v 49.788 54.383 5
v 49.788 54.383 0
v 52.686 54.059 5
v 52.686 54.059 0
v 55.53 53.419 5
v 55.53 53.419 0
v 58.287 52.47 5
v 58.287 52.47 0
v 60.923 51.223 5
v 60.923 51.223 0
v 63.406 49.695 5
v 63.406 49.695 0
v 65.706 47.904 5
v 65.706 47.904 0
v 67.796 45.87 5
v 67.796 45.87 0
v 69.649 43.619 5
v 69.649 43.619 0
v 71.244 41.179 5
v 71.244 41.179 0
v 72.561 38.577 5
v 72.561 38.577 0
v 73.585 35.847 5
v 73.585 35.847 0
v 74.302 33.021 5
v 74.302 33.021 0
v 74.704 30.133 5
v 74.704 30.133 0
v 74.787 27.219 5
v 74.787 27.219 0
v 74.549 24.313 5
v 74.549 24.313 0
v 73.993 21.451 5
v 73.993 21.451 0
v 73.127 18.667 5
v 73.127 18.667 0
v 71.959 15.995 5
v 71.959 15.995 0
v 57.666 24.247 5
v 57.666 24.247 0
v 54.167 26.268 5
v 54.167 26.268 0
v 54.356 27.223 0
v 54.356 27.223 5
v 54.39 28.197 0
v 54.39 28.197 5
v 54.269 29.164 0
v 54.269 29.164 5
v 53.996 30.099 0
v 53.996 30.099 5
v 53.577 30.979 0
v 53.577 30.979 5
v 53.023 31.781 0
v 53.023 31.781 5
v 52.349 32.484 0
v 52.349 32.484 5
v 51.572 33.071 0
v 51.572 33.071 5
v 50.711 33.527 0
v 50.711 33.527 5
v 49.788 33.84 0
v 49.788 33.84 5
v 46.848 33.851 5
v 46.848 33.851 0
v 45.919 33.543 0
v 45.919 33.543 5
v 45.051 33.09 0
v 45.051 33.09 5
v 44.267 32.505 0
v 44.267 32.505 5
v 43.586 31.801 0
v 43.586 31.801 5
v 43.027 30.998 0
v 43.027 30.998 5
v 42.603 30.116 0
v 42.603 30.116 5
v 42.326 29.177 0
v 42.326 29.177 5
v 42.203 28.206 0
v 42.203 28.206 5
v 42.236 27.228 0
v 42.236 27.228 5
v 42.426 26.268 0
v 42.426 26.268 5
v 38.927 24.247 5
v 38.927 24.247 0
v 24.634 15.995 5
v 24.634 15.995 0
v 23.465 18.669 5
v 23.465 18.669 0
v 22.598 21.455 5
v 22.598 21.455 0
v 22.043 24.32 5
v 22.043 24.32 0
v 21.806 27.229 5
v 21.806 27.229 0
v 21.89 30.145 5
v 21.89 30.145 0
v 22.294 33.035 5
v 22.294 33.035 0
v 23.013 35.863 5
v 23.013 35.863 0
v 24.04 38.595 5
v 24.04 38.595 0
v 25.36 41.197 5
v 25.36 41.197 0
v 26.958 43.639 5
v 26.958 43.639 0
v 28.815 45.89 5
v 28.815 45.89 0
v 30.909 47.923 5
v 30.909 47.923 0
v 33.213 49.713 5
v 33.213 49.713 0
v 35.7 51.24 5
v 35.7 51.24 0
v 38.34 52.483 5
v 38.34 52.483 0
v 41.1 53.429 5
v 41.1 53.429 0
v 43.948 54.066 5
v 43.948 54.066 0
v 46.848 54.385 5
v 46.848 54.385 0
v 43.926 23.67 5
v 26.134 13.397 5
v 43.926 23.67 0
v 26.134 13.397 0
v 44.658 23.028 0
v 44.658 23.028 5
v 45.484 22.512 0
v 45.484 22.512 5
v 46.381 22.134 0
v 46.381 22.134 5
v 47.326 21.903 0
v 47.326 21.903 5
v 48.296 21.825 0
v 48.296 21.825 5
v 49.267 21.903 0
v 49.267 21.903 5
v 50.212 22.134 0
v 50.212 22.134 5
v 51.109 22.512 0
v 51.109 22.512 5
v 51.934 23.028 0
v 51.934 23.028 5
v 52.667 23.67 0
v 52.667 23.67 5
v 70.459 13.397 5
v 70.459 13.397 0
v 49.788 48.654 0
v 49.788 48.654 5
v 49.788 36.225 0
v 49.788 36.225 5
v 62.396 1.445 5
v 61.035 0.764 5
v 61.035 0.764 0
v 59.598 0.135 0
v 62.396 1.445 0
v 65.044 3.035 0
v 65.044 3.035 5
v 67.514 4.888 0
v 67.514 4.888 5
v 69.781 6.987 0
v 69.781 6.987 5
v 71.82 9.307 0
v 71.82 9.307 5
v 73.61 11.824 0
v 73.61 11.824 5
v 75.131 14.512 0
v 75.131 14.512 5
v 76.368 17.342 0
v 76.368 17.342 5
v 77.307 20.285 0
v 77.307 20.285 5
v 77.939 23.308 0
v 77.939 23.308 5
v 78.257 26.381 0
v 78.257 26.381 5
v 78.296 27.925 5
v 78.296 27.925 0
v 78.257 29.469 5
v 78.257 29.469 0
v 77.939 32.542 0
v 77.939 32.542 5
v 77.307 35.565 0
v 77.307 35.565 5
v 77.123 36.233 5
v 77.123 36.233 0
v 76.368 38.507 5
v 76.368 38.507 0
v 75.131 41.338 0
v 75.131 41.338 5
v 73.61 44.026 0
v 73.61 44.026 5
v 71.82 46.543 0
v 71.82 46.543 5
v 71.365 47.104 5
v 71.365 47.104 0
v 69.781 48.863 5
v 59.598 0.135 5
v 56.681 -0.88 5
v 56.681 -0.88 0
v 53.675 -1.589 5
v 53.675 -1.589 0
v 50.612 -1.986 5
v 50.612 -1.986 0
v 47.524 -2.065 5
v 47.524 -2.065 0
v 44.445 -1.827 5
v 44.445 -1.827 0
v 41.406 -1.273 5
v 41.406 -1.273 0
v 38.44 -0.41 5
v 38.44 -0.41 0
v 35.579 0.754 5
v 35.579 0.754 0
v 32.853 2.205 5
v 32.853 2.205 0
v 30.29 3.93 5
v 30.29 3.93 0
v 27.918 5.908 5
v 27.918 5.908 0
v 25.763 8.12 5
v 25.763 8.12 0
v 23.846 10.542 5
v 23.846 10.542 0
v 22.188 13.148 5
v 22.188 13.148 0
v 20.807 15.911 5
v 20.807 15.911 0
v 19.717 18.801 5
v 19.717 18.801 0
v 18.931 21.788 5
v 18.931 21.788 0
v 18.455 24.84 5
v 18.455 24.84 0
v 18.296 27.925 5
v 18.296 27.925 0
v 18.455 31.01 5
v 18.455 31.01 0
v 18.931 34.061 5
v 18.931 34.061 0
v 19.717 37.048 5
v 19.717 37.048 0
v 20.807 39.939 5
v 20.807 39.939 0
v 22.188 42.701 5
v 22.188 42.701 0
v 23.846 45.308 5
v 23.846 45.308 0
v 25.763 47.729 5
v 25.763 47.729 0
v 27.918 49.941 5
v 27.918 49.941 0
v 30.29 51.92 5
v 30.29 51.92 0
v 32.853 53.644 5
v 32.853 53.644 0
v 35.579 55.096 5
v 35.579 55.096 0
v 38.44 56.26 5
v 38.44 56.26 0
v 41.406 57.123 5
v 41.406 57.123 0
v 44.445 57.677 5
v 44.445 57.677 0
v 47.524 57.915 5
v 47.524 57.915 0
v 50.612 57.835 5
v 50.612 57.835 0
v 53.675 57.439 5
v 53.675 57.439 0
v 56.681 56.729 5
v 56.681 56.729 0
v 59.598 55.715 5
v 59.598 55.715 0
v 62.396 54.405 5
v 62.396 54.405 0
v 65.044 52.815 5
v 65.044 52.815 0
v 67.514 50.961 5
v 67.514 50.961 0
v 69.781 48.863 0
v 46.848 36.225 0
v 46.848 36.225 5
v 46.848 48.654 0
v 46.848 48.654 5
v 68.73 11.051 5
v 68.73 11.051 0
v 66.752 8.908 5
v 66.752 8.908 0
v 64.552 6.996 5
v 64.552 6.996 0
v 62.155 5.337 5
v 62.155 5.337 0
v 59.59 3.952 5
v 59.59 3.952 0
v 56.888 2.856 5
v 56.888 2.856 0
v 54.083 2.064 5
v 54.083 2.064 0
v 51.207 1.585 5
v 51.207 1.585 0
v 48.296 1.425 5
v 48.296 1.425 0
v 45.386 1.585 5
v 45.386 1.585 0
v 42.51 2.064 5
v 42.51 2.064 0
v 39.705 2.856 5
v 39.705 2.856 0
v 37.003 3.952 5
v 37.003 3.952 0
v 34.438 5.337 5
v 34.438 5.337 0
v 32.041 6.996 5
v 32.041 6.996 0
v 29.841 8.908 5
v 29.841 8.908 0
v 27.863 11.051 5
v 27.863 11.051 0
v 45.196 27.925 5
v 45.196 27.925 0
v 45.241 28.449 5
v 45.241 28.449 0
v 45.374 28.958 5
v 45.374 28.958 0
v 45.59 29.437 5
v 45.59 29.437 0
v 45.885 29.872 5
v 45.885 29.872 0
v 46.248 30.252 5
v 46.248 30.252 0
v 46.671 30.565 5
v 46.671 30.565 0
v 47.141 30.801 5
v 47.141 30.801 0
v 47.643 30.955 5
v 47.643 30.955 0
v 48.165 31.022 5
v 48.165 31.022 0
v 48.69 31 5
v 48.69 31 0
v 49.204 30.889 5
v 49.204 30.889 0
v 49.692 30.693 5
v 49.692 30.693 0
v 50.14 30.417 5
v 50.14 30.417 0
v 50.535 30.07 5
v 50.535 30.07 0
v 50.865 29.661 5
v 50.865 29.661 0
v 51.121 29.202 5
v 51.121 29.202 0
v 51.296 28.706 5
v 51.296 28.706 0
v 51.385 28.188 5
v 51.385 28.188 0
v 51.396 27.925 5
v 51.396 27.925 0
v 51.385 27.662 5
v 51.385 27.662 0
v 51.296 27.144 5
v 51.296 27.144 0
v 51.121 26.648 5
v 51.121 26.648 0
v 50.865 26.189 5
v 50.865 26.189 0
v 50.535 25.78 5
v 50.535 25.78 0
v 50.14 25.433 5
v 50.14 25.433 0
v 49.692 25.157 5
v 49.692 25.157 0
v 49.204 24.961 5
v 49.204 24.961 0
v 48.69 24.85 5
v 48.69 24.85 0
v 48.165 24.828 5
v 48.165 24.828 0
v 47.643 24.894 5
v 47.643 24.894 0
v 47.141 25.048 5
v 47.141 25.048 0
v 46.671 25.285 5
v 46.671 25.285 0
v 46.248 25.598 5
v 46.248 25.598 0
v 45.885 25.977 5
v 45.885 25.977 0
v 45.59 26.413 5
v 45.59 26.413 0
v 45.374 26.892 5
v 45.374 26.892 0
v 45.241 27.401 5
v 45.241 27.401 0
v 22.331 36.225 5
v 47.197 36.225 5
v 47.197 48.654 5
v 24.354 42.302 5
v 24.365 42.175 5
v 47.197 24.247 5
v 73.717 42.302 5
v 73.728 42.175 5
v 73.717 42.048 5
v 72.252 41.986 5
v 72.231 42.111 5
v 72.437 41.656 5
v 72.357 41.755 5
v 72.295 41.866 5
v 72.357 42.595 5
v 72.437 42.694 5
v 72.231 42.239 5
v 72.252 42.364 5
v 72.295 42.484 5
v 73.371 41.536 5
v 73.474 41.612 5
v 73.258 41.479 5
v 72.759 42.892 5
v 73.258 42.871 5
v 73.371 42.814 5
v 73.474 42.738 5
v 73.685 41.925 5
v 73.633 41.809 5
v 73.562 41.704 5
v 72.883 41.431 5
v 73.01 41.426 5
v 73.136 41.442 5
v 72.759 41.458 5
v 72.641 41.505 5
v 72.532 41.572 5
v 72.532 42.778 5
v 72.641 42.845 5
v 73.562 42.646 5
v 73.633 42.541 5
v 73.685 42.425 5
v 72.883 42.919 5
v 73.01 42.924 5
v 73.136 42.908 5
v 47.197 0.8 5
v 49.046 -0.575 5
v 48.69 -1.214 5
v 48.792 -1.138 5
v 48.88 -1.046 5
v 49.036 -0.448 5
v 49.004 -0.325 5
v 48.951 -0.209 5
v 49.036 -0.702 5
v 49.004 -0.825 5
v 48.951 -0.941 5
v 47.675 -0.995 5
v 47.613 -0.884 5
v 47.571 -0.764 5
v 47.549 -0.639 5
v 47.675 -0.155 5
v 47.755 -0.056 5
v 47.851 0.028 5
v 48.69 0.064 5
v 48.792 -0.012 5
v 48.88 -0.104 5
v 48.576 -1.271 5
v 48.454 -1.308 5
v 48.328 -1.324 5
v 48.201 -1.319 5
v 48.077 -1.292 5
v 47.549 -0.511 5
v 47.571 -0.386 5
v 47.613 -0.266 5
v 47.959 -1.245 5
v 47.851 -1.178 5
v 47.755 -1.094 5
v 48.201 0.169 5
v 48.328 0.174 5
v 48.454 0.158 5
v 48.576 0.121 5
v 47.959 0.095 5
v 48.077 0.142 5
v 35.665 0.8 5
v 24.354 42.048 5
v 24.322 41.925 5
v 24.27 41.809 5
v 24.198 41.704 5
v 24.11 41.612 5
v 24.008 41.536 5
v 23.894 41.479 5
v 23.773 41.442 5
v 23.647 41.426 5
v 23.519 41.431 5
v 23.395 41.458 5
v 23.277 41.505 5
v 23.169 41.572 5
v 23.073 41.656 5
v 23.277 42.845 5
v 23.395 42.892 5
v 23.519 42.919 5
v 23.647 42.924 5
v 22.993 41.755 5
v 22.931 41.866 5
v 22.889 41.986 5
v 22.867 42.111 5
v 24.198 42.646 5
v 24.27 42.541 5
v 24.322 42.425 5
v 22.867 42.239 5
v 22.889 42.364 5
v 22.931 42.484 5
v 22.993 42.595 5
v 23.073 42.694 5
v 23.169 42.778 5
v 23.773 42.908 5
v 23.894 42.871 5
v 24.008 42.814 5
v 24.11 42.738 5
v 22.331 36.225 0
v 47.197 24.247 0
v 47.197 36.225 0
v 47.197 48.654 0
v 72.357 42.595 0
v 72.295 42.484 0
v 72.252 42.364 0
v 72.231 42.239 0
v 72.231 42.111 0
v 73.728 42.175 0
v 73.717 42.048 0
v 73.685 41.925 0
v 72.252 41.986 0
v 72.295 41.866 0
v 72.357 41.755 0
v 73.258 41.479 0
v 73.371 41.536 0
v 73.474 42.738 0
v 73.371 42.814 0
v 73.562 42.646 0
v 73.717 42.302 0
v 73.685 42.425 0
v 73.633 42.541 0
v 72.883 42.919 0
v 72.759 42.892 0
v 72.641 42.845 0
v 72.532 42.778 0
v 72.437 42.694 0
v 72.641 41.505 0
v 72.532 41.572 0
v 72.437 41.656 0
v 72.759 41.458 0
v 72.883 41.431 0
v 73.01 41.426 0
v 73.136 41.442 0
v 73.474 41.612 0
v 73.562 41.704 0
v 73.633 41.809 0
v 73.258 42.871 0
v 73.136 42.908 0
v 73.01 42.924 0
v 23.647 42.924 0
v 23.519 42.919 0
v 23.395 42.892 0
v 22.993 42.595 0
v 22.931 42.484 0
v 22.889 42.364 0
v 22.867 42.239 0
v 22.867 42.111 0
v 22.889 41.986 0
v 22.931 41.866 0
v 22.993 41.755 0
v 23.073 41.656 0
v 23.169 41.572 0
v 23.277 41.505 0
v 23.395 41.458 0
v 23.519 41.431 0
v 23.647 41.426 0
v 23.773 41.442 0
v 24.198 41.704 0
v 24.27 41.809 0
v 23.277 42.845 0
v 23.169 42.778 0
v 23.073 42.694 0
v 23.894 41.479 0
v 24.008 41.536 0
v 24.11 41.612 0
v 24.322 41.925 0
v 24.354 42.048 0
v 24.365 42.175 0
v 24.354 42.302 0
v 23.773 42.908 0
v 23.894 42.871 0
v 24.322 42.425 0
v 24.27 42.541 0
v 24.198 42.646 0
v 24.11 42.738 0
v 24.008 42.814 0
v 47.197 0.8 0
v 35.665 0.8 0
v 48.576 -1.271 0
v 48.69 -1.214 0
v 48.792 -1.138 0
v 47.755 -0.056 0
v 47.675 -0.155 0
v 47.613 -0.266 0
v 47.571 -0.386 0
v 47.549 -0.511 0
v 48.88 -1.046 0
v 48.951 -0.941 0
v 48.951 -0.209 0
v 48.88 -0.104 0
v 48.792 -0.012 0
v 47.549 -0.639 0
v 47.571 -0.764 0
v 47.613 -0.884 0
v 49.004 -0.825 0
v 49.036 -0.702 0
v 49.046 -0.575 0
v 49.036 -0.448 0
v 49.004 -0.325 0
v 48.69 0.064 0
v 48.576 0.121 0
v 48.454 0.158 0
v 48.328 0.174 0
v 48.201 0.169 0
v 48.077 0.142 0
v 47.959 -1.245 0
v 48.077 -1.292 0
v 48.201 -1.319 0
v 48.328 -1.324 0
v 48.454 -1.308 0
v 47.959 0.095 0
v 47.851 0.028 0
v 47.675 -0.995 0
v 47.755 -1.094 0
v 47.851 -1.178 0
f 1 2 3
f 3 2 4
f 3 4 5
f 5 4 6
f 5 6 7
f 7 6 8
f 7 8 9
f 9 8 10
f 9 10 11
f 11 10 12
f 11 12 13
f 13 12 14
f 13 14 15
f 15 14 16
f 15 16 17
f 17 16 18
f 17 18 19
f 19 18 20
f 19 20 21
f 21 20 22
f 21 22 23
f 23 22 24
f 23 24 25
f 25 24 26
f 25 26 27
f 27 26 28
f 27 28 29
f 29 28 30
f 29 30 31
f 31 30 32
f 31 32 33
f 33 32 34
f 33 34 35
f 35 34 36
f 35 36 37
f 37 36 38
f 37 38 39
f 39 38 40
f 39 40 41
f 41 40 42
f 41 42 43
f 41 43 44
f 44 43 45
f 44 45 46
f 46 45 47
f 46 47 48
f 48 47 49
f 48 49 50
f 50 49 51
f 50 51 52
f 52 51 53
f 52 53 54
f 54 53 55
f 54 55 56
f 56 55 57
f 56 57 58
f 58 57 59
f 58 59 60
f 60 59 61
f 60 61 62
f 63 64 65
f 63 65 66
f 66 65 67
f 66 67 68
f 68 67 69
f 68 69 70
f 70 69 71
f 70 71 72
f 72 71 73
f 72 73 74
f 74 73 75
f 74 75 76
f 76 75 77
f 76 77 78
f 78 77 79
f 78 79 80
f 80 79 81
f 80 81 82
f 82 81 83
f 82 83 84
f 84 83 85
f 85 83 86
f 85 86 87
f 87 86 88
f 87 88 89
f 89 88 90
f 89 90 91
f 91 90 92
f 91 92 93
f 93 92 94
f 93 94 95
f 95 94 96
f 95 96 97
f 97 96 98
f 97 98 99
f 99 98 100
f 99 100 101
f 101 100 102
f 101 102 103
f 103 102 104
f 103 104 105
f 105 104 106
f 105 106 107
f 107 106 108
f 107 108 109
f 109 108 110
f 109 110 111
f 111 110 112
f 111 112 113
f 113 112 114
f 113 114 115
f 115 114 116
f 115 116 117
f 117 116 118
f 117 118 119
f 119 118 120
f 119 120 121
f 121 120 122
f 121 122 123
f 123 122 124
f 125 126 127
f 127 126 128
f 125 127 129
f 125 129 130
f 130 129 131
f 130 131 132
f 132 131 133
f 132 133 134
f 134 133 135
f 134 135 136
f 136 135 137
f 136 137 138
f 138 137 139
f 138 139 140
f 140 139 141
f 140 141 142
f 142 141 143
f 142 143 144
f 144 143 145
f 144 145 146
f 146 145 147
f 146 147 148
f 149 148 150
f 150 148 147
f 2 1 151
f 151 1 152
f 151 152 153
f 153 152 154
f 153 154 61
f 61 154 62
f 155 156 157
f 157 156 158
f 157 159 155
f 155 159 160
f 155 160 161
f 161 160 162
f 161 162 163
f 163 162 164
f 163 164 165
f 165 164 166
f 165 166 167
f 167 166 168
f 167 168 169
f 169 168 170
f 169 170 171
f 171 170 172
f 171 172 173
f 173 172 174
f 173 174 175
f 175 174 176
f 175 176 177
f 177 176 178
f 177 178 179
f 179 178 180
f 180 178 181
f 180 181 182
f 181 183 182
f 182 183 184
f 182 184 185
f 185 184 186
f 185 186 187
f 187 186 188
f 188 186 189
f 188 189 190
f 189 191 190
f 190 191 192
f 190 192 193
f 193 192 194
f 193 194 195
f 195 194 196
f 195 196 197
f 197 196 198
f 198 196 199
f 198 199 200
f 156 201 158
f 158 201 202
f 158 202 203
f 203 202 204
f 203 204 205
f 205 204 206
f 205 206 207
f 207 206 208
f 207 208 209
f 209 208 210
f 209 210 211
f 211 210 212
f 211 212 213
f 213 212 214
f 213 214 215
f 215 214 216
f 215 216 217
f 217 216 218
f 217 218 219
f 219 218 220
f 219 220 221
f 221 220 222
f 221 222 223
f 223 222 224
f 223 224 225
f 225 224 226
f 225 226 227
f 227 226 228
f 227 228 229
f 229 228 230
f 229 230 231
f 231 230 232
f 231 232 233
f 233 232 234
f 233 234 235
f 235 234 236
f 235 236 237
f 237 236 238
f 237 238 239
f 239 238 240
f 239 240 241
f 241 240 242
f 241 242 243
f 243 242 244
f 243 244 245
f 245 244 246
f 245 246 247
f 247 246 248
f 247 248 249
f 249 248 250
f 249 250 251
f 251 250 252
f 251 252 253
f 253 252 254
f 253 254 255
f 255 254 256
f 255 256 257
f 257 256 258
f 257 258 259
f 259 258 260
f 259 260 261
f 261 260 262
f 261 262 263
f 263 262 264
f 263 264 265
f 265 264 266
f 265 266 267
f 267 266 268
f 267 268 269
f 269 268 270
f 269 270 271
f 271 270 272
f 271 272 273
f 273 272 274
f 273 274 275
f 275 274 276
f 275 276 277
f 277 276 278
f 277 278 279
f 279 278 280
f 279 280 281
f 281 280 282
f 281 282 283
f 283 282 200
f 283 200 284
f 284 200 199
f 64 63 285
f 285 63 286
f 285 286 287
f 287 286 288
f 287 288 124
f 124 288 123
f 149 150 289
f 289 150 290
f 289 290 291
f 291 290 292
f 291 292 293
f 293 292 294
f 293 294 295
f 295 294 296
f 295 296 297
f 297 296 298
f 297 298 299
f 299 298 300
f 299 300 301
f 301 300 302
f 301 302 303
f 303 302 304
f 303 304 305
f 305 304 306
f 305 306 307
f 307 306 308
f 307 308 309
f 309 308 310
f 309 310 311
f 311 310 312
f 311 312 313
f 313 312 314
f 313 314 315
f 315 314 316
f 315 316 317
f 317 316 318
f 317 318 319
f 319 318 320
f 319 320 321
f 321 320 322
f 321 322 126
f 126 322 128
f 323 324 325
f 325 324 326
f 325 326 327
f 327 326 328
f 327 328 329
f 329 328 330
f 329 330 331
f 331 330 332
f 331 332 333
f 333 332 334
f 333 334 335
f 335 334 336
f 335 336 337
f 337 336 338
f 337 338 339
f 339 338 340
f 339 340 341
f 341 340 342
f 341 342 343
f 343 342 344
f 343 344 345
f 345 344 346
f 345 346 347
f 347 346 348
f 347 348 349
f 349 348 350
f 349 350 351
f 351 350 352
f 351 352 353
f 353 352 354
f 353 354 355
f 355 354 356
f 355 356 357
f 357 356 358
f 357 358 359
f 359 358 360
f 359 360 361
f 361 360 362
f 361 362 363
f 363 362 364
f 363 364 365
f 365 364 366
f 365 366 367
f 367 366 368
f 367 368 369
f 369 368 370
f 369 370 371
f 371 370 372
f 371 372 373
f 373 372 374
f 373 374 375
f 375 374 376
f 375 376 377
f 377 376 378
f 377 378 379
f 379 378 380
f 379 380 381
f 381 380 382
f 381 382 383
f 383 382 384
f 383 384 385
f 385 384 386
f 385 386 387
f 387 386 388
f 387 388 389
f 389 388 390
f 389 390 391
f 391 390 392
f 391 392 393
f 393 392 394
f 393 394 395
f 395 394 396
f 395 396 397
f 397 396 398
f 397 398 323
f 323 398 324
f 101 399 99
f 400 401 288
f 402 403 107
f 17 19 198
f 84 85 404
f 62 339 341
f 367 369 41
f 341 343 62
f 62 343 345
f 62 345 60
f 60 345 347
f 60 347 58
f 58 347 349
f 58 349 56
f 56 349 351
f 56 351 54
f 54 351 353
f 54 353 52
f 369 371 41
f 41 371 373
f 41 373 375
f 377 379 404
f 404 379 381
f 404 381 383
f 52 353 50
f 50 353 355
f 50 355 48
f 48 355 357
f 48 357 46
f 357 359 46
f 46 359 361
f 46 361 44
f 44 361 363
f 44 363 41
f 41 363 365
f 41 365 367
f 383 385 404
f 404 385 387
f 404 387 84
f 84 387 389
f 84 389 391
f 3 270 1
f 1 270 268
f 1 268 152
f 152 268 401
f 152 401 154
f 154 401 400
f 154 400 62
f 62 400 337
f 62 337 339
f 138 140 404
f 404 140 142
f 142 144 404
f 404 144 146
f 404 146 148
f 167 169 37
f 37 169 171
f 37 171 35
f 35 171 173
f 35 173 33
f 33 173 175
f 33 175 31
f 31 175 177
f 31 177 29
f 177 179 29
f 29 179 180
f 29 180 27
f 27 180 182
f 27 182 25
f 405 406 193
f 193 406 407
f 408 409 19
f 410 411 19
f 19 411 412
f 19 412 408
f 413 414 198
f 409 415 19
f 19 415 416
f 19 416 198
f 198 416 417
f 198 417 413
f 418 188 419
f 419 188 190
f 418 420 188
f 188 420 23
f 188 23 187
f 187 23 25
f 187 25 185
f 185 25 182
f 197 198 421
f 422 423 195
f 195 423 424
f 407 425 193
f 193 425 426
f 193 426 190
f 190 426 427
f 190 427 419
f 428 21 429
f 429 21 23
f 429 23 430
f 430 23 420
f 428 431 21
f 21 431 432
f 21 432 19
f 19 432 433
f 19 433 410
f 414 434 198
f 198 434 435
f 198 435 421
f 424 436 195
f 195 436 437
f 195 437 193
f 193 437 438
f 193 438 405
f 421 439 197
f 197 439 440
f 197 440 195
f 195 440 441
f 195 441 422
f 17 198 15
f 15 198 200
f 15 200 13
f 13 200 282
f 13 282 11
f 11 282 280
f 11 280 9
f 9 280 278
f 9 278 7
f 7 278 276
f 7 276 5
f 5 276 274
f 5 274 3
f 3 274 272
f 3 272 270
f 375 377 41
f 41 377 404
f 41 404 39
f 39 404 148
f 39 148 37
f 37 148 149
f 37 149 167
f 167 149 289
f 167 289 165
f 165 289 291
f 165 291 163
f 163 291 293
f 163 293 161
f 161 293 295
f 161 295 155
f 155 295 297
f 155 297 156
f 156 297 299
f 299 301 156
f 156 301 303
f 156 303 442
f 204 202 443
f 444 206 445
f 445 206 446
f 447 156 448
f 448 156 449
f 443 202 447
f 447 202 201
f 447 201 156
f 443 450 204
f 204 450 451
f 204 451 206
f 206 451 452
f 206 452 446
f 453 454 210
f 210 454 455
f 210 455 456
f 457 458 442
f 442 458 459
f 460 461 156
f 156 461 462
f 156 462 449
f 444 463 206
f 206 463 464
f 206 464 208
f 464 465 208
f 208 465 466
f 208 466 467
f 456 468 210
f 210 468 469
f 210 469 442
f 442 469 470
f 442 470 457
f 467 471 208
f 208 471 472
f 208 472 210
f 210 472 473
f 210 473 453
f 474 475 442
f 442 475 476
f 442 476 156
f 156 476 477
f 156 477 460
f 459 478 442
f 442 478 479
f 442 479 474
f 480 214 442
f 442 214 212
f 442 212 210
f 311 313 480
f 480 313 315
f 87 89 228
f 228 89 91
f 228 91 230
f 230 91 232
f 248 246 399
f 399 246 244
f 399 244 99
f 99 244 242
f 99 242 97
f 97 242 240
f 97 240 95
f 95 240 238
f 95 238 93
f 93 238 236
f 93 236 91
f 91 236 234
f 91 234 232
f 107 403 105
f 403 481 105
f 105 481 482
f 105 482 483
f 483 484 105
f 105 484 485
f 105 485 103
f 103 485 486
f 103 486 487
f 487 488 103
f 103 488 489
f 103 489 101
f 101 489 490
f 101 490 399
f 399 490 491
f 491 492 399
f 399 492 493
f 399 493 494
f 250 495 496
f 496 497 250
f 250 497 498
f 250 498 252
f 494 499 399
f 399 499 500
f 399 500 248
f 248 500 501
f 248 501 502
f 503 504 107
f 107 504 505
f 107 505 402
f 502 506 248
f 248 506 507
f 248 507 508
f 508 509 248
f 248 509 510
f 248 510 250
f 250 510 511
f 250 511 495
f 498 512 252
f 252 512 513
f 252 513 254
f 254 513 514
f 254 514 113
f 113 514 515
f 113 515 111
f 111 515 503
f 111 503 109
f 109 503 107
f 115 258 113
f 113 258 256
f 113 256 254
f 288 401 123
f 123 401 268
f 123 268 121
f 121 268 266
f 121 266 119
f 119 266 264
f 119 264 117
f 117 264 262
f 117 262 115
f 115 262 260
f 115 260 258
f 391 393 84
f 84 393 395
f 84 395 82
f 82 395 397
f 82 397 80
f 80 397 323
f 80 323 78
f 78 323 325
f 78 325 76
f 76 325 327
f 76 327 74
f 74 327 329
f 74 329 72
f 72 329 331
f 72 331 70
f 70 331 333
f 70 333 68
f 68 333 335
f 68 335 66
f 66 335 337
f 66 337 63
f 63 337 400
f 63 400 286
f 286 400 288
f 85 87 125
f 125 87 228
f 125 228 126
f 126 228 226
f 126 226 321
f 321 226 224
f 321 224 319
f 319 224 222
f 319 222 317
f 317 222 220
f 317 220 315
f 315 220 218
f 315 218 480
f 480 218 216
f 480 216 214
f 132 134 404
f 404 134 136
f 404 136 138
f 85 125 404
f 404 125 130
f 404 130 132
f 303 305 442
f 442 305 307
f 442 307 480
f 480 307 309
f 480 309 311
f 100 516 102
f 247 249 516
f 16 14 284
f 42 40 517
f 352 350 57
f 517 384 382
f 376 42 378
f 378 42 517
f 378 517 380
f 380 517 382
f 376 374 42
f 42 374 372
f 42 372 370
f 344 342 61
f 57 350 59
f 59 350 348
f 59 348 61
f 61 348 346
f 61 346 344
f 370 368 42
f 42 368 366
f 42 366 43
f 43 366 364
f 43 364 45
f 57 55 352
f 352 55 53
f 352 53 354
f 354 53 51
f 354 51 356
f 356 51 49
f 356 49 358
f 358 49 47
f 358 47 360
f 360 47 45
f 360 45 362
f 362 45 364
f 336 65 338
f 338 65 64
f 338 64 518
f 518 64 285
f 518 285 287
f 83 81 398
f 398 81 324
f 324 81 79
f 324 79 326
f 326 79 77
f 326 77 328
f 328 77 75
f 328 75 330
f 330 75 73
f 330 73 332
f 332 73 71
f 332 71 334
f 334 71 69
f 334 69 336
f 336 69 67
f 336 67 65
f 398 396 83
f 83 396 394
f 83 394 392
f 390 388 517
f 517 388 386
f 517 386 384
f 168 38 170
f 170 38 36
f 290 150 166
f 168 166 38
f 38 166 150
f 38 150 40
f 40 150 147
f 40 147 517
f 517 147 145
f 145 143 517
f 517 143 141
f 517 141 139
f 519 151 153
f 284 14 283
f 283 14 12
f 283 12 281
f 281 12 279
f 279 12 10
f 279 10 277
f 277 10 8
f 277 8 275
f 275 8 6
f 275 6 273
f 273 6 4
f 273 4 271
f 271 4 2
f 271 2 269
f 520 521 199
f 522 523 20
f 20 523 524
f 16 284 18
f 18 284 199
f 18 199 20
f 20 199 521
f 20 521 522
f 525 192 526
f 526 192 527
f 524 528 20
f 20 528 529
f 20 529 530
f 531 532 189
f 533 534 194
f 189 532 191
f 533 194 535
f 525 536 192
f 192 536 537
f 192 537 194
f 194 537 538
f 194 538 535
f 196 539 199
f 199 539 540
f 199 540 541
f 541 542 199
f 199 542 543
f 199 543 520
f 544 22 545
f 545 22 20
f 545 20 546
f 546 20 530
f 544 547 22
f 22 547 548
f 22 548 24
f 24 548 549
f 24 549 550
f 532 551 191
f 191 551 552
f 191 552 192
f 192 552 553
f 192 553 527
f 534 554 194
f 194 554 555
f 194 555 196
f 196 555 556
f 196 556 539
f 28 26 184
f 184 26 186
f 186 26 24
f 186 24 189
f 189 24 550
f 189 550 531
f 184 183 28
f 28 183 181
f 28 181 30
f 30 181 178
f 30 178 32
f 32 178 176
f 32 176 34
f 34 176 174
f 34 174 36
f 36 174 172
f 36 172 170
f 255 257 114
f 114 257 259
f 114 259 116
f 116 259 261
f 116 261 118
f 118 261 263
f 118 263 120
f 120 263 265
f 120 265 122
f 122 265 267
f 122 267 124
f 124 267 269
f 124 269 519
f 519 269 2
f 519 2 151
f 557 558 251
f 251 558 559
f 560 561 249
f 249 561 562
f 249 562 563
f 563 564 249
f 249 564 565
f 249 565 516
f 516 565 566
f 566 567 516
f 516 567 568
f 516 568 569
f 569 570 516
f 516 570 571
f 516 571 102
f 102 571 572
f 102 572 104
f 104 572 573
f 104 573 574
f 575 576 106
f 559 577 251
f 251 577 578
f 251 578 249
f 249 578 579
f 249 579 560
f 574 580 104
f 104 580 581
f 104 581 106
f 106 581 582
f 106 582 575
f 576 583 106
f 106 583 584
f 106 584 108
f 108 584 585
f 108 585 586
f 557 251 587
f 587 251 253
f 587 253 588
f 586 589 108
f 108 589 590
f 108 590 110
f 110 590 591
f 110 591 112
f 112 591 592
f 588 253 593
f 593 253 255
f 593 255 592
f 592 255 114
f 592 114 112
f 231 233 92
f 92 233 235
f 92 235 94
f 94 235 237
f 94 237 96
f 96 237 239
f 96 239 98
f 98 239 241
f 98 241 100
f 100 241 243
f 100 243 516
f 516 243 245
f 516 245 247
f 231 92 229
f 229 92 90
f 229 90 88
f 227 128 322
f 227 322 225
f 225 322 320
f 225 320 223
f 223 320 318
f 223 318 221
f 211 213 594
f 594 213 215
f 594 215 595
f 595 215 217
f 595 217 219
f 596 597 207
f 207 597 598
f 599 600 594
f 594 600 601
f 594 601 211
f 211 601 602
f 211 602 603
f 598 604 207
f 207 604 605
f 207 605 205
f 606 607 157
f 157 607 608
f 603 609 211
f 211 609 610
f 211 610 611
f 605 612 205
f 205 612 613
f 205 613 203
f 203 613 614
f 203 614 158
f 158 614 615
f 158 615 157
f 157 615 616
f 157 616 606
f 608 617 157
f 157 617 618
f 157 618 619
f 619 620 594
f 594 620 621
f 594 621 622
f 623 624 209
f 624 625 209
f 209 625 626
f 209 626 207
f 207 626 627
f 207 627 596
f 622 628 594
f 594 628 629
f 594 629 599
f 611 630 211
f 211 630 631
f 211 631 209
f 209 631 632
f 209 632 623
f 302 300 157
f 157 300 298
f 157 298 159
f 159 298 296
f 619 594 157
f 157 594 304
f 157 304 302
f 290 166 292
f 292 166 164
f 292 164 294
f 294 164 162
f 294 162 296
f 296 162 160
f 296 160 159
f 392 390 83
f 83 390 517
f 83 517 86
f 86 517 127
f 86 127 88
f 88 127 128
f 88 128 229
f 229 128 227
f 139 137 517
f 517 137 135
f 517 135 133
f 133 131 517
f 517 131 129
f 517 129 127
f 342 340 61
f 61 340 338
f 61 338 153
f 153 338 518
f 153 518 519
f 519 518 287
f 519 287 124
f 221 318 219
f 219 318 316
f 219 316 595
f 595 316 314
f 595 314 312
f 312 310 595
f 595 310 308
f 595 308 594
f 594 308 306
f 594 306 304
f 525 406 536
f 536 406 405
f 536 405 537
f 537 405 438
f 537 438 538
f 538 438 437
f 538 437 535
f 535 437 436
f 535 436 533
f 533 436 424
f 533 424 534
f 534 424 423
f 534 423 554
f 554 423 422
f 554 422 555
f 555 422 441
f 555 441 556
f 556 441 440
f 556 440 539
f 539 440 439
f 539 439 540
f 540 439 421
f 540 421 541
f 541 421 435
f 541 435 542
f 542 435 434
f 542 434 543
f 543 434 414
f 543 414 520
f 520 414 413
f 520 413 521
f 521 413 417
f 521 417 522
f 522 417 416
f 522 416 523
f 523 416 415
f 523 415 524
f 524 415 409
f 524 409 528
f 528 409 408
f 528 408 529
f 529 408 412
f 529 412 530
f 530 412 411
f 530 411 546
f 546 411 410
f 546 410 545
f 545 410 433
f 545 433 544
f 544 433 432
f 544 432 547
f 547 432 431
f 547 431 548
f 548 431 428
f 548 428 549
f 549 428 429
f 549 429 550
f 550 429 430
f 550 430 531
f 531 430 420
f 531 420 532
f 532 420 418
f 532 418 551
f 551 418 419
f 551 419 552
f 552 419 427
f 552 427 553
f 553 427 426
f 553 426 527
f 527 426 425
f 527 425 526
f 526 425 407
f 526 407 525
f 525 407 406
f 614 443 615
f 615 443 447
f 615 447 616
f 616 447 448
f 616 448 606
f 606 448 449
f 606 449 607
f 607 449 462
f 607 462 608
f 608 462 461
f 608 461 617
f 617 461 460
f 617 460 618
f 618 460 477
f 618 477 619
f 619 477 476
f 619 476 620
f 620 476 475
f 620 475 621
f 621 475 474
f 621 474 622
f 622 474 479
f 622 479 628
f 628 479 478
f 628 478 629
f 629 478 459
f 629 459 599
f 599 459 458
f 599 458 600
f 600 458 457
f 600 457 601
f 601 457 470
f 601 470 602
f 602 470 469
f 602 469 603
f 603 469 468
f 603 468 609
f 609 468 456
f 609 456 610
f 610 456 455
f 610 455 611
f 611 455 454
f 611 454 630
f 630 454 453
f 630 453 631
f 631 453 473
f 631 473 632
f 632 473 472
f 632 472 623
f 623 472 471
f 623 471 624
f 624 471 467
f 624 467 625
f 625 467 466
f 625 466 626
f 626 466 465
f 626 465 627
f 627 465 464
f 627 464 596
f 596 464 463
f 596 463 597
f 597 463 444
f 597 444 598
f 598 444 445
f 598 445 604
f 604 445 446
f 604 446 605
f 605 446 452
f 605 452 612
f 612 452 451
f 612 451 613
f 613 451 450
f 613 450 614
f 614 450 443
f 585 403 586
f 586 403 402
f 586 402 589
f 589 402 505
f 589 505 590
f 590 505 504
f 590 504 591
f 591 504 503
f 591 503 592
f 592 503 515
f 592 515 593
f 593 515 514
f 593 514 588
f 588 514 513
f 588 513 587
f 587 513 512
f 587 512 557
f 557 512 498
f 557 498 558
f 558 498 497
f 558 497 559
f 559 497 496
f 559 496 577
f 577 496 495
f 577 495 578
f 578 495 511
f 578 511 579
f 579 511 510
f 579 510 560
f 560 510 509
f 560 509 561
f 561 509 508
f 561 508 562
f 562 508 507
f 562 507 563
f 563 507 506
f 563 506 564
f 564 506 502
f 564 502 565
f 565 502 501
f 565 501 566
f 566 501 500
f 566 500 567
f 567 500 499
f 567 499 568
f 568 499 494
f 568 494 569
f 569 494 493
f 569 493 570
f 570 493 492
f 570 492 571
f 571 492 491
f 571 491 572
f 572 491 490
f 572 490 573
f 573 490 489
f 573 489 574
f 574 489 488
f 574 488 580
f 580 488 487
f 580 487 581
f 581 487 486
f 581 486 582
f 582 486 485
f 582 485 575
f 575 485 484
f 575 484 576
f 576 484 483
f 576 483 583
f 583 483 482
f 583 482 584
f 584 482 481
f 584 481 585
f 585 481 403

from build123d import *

# Parameters (mm, degrees)
SKETCH_1_R          = 3.1
EXTRUDE_2_DEPTH     = 5
SKETCH_2_R          = 0.75
CUT_EXTRUDE_1_DEPTH = 5


with BuildPart() as part:
    # 草图1 → 凸台-拉伸2 (new body)
    # profile 1 of 13: a face of its own
    with BuildSketch(Plane.XY):
        with BuildLine():
            ThreePointArc((46.84834221, 57.889935626), (22.328704618, 42.947388438), (21.598208517, 14.242707294))
            Line((21.598208517, 14.242707294), (24.63359588, 15.995189006))
            ThreePointArc((24.63359588, 15.995189006), (25.35979925, 41.197395358), (46.84834221, 54.385310198))
            Line((46.84834221, 54.385310198), (46.84834221, 57.889935626))
        make_face()
    # profile 2 of 13: a face of its own
    with BuildSketch(Plane.XY):
        with BuildLine():
            Line((71.95935283, 15.995189006), (74.994740193, 14.242707294))
            ThreePointArc((74.994740193, 14.242707294), (77.459361516, 20.887435435), (78.296474355, 27.924907455))
            ThreePointArc((78.296474355, 27.924907455), (70.030591529, 48.60407936), (49.787930978, 57.887810471))
            Line((49.787930978, 57.887810471), (49.787930978, 54.382903546))
            ThreePointArc((49.787930978, 54.382903546), (67.554895896, 46.128291749), (74.796474355, 27.924907455))
            ThreePointArc((74.796474355, 27.924907455), (74.077439034, 21.793687331), (71.95935283, 15.995189006))
        make_face()
    # profile 3 of 13: a face of its own
    with BuildSketch(Plane.XY):
        with BuildLine():
            ThreePointArc((23.098208517, 11.644631083), (48.296474355, -2.075092545), (73.494740193, 11.644631083))
            Line((73.494740193, 11.644631083), (70.45935283, 13.397112794))
            ThreePointArc((70.45935283, 13.397112794), (48.296474355, 1.424907455), (26.13359588, 13.397112794))
            Line((26.13359588, 13.397112794), (23.098208517, 11.644631083))
        make_face()
    # profile 4 of 13: a face of its own
    with BuildSketch(Plane.XY):
        with BuildLine():
            ThreePointArc((21.598208517, 14.242707294), (22.315712241, 12.924907455), (23.098208517, 11.644631083))
            Line((23.098208517, 11.644631083), (26.13359588, 13.397112794))
            ThreePointArc((26.13359588, 13.397112794), (25.346801155, 14.674907455), (24.63359588, 15.995189006))
            Line((24.63359588, 15.995189006), (21.598208517, 14.242707294))
        make_face()
    # profile 5 of 13: a face of its own
    with BuildSketch(Plane.XY):
        with BuildLine():
            ThreePointArc((24.63359588, 15.995189006), (25.346801155, 14.674907455), (26.13359588, 13.397112794))
            Line((26.13359588, 13.397112794), (43.925927509, 23.66952025))
            ThreePointArc((43.925927509, 23.66952025), (43.013719392, 24.874907455), (42.425927509, 26.267596461))
            Line((42.425927509, 26.267596461), (24.63359588, 15.995189006))
        make_face()
    # profile 6 of 13: a face of its own
    with BuildSketch(Plane.XY):
        with BuildLine():
            Line((52.565394479, 27.19229608), (54.167021201, 26.267596461))
            ThreePointArc((54.167021201, 26.267596461), (54.338838783, 27.088347762), (54.396474355, 27.924907455))
            ThreePointArc((54.396474355, 27.924907455), (53.108328748, 31.67404833), (49.787930978, 33.839766468))
            Line((49.787930978, 33.839766468), (49.787930978, 32.638782116))
            Line((49.787930978, 32.638782116), (46.84834221, 32.638782116))
            Line((46.84834221, 32.638782116), (46.84834221, 33.850522469))
            ThreePointArc((46.84834221, 33.850522469), (43.027133101, 30.998023585), (42.425927509, 26.267596461))
            Line((42.425927509, 26.267596461), (43.927397053, 27.134470306))
            Line((43.927397053, 27.134470306), (45.427397053, 24.536394095))
            Line((45.427397053, 24.536394095), (43.925927509, 23.66952025))
            ThreePointArc((43.925927509, 23.66952025), (48.296474355, 21.824907455), (52.667021201, 23.66952025))
            Line((52.667021201, 23.66952025), (51.065394479, 24.594219869))
            Line((51.065394479, 24.594219869), (52.565394479, 27.19229608))
        make_face()
        with Locations((48.296474355, 27.924907455)):
            Circle(SKETCH_1_R, mode=Mode.SUBTRACT)
    # profile 7 of 13: a face of its own
    with BuildSketch(Plane.XY):
        with BuildLine():
            ThreePointArc((42.425927509, 26.267596461), (43.013719392, 24.874907455), (43.925927509, 23.66952025))
            Line((43.925927509, 23.66952025), (45.427397053, 24.536394095))
            Line((45.427397053, 24.536394095), (43.927397053, 27.134470306))
            Line((43.927397053, 27.134470306), (42.425927509, 26.267596461))
        make_face()
    # profile 8 of 13: a face of its own
    with BuildSketch(Plane.XY):
        with BuildLine():
            ThreePointArc((52.667021201, 23.66952025), (53.579229318, 24.874907455), (54.167021201, 26.267596461))
            Line((54.167021201, 26.267596461), (52.565394479, 27.19229608))
            Line((52.565394479, 27.19229608), (51.065394479, 24.594219869))
            Line((51.065394479, 24.594219869), (52.667021201, 23.66952025))
        make_face()
    # profile 9 of 13: a face of its own
    with BuildSketch(Plane.XY):
        with BuildLine():
            Line((49.787930978, 32.638782116), (49.787930978, 33.839766468))
            ThreePointArc((49.787930978, 33.839766468), (48.3187942, 34.024866621), (46.84834221, 33.850522469))
            Line((46.84834221, 33.850522469), (46.84834221, 32.638782116))
            Line((46.84834221, 32.638782116), (49.787930978, 32.638782116))
        make_face()
    # profile 10 of 13: a face of its own
    with BuildSketch(Plane.XY):
        with BuildLine():
            Line((49.787930978, 33.839766468), (49.787930978, 54.382903546))
            ThreePointArc((49.787930978, 54.382903546), (48.31816999, 54.424898574), (46.84834221, 54.385310198))
            Line((46.84834221, 54.385310198), (46.84834221, 33.850522469))
            ThreePointArc((46.84834221, 33.850522469), (48.3187942, 34.024866621), (49.787930978, 33.839766468))
        make_face()
    # profile 11 of 13: a face of its own
    with BuildSketch(Plane.XY):
        with BuildLine():
            ThreePointArc((70.45935283, 13.397112794), (71.246147555, 14.674907455), (71.95935283, 15.995189006))
            Line((71.95935283, 15.995189006), (54.167021201, 26.267596461))
            ThreePointArc((54.167021201, 26.267596461), (53.579229318, 24.874907455), (52.667021201, 23.66952025))
            Line((52.667021201, 23.66952025), (70.45935283, 13.397112794))
        make_face()
    # profile 12 of 13: a face of its own
    with BuildSketch(Plane.XY):
        with BuildLine():
            ThreePointArc((73.494740193, 11.644631083), (74.277236468, 12.924907455), (74.994740193, 14.242707294))
            Line((74.994740193, 14.242707294), (71.95935283, 15.995189006))
            ThreePointArc((71.95935283, 15.995189006), (71.246147555, 14.674907455), (70.45935283, 13.397112794))
            Line((70.45935283, 13.397112794), (73.494740193, 11.644631083))
        make_face()
    # profile 13 of 13: a face of its own
    with BuildSketch(Plane.XY):
        with BuildLine():
            Line((49.787930978, 54.382903546), (49.787930978, 57.887810471))
            ThreePointArc((49.787930978, 57.887810471), (48.318162639, 57.924899616), (46.84834221, 57.889935626))
            Line((46.84834221, 57.889935626), (46.84834221, 54.385310198))
            ThreePointArc((46.84834221, 54.385310198), (48.31816999, 54.424898574), (49.787930978, 54.382903546))
        make_face()
    extrude(amount=EXTRUDE_2_DEPTH)

    # 草图2 → 切除-拉伸1 (cut)
    with BuildSketch(Plane.XY.offset(5)):
        with Locations((23.614750347, 42.174907455)):
            Circle(SKETCH_2_R)
        with Locations((72.978198363, 42.174907455)):
            Circle(SKETCH_2_R)
        with Locations((48.296474355, -0.575092545)):
            Circle(SKETCH_2_R)
    extrude(amount=-CUT_EXTRUDE_1_DEPTH, mode=Mode.SUBTRACT)


solid = part.part
